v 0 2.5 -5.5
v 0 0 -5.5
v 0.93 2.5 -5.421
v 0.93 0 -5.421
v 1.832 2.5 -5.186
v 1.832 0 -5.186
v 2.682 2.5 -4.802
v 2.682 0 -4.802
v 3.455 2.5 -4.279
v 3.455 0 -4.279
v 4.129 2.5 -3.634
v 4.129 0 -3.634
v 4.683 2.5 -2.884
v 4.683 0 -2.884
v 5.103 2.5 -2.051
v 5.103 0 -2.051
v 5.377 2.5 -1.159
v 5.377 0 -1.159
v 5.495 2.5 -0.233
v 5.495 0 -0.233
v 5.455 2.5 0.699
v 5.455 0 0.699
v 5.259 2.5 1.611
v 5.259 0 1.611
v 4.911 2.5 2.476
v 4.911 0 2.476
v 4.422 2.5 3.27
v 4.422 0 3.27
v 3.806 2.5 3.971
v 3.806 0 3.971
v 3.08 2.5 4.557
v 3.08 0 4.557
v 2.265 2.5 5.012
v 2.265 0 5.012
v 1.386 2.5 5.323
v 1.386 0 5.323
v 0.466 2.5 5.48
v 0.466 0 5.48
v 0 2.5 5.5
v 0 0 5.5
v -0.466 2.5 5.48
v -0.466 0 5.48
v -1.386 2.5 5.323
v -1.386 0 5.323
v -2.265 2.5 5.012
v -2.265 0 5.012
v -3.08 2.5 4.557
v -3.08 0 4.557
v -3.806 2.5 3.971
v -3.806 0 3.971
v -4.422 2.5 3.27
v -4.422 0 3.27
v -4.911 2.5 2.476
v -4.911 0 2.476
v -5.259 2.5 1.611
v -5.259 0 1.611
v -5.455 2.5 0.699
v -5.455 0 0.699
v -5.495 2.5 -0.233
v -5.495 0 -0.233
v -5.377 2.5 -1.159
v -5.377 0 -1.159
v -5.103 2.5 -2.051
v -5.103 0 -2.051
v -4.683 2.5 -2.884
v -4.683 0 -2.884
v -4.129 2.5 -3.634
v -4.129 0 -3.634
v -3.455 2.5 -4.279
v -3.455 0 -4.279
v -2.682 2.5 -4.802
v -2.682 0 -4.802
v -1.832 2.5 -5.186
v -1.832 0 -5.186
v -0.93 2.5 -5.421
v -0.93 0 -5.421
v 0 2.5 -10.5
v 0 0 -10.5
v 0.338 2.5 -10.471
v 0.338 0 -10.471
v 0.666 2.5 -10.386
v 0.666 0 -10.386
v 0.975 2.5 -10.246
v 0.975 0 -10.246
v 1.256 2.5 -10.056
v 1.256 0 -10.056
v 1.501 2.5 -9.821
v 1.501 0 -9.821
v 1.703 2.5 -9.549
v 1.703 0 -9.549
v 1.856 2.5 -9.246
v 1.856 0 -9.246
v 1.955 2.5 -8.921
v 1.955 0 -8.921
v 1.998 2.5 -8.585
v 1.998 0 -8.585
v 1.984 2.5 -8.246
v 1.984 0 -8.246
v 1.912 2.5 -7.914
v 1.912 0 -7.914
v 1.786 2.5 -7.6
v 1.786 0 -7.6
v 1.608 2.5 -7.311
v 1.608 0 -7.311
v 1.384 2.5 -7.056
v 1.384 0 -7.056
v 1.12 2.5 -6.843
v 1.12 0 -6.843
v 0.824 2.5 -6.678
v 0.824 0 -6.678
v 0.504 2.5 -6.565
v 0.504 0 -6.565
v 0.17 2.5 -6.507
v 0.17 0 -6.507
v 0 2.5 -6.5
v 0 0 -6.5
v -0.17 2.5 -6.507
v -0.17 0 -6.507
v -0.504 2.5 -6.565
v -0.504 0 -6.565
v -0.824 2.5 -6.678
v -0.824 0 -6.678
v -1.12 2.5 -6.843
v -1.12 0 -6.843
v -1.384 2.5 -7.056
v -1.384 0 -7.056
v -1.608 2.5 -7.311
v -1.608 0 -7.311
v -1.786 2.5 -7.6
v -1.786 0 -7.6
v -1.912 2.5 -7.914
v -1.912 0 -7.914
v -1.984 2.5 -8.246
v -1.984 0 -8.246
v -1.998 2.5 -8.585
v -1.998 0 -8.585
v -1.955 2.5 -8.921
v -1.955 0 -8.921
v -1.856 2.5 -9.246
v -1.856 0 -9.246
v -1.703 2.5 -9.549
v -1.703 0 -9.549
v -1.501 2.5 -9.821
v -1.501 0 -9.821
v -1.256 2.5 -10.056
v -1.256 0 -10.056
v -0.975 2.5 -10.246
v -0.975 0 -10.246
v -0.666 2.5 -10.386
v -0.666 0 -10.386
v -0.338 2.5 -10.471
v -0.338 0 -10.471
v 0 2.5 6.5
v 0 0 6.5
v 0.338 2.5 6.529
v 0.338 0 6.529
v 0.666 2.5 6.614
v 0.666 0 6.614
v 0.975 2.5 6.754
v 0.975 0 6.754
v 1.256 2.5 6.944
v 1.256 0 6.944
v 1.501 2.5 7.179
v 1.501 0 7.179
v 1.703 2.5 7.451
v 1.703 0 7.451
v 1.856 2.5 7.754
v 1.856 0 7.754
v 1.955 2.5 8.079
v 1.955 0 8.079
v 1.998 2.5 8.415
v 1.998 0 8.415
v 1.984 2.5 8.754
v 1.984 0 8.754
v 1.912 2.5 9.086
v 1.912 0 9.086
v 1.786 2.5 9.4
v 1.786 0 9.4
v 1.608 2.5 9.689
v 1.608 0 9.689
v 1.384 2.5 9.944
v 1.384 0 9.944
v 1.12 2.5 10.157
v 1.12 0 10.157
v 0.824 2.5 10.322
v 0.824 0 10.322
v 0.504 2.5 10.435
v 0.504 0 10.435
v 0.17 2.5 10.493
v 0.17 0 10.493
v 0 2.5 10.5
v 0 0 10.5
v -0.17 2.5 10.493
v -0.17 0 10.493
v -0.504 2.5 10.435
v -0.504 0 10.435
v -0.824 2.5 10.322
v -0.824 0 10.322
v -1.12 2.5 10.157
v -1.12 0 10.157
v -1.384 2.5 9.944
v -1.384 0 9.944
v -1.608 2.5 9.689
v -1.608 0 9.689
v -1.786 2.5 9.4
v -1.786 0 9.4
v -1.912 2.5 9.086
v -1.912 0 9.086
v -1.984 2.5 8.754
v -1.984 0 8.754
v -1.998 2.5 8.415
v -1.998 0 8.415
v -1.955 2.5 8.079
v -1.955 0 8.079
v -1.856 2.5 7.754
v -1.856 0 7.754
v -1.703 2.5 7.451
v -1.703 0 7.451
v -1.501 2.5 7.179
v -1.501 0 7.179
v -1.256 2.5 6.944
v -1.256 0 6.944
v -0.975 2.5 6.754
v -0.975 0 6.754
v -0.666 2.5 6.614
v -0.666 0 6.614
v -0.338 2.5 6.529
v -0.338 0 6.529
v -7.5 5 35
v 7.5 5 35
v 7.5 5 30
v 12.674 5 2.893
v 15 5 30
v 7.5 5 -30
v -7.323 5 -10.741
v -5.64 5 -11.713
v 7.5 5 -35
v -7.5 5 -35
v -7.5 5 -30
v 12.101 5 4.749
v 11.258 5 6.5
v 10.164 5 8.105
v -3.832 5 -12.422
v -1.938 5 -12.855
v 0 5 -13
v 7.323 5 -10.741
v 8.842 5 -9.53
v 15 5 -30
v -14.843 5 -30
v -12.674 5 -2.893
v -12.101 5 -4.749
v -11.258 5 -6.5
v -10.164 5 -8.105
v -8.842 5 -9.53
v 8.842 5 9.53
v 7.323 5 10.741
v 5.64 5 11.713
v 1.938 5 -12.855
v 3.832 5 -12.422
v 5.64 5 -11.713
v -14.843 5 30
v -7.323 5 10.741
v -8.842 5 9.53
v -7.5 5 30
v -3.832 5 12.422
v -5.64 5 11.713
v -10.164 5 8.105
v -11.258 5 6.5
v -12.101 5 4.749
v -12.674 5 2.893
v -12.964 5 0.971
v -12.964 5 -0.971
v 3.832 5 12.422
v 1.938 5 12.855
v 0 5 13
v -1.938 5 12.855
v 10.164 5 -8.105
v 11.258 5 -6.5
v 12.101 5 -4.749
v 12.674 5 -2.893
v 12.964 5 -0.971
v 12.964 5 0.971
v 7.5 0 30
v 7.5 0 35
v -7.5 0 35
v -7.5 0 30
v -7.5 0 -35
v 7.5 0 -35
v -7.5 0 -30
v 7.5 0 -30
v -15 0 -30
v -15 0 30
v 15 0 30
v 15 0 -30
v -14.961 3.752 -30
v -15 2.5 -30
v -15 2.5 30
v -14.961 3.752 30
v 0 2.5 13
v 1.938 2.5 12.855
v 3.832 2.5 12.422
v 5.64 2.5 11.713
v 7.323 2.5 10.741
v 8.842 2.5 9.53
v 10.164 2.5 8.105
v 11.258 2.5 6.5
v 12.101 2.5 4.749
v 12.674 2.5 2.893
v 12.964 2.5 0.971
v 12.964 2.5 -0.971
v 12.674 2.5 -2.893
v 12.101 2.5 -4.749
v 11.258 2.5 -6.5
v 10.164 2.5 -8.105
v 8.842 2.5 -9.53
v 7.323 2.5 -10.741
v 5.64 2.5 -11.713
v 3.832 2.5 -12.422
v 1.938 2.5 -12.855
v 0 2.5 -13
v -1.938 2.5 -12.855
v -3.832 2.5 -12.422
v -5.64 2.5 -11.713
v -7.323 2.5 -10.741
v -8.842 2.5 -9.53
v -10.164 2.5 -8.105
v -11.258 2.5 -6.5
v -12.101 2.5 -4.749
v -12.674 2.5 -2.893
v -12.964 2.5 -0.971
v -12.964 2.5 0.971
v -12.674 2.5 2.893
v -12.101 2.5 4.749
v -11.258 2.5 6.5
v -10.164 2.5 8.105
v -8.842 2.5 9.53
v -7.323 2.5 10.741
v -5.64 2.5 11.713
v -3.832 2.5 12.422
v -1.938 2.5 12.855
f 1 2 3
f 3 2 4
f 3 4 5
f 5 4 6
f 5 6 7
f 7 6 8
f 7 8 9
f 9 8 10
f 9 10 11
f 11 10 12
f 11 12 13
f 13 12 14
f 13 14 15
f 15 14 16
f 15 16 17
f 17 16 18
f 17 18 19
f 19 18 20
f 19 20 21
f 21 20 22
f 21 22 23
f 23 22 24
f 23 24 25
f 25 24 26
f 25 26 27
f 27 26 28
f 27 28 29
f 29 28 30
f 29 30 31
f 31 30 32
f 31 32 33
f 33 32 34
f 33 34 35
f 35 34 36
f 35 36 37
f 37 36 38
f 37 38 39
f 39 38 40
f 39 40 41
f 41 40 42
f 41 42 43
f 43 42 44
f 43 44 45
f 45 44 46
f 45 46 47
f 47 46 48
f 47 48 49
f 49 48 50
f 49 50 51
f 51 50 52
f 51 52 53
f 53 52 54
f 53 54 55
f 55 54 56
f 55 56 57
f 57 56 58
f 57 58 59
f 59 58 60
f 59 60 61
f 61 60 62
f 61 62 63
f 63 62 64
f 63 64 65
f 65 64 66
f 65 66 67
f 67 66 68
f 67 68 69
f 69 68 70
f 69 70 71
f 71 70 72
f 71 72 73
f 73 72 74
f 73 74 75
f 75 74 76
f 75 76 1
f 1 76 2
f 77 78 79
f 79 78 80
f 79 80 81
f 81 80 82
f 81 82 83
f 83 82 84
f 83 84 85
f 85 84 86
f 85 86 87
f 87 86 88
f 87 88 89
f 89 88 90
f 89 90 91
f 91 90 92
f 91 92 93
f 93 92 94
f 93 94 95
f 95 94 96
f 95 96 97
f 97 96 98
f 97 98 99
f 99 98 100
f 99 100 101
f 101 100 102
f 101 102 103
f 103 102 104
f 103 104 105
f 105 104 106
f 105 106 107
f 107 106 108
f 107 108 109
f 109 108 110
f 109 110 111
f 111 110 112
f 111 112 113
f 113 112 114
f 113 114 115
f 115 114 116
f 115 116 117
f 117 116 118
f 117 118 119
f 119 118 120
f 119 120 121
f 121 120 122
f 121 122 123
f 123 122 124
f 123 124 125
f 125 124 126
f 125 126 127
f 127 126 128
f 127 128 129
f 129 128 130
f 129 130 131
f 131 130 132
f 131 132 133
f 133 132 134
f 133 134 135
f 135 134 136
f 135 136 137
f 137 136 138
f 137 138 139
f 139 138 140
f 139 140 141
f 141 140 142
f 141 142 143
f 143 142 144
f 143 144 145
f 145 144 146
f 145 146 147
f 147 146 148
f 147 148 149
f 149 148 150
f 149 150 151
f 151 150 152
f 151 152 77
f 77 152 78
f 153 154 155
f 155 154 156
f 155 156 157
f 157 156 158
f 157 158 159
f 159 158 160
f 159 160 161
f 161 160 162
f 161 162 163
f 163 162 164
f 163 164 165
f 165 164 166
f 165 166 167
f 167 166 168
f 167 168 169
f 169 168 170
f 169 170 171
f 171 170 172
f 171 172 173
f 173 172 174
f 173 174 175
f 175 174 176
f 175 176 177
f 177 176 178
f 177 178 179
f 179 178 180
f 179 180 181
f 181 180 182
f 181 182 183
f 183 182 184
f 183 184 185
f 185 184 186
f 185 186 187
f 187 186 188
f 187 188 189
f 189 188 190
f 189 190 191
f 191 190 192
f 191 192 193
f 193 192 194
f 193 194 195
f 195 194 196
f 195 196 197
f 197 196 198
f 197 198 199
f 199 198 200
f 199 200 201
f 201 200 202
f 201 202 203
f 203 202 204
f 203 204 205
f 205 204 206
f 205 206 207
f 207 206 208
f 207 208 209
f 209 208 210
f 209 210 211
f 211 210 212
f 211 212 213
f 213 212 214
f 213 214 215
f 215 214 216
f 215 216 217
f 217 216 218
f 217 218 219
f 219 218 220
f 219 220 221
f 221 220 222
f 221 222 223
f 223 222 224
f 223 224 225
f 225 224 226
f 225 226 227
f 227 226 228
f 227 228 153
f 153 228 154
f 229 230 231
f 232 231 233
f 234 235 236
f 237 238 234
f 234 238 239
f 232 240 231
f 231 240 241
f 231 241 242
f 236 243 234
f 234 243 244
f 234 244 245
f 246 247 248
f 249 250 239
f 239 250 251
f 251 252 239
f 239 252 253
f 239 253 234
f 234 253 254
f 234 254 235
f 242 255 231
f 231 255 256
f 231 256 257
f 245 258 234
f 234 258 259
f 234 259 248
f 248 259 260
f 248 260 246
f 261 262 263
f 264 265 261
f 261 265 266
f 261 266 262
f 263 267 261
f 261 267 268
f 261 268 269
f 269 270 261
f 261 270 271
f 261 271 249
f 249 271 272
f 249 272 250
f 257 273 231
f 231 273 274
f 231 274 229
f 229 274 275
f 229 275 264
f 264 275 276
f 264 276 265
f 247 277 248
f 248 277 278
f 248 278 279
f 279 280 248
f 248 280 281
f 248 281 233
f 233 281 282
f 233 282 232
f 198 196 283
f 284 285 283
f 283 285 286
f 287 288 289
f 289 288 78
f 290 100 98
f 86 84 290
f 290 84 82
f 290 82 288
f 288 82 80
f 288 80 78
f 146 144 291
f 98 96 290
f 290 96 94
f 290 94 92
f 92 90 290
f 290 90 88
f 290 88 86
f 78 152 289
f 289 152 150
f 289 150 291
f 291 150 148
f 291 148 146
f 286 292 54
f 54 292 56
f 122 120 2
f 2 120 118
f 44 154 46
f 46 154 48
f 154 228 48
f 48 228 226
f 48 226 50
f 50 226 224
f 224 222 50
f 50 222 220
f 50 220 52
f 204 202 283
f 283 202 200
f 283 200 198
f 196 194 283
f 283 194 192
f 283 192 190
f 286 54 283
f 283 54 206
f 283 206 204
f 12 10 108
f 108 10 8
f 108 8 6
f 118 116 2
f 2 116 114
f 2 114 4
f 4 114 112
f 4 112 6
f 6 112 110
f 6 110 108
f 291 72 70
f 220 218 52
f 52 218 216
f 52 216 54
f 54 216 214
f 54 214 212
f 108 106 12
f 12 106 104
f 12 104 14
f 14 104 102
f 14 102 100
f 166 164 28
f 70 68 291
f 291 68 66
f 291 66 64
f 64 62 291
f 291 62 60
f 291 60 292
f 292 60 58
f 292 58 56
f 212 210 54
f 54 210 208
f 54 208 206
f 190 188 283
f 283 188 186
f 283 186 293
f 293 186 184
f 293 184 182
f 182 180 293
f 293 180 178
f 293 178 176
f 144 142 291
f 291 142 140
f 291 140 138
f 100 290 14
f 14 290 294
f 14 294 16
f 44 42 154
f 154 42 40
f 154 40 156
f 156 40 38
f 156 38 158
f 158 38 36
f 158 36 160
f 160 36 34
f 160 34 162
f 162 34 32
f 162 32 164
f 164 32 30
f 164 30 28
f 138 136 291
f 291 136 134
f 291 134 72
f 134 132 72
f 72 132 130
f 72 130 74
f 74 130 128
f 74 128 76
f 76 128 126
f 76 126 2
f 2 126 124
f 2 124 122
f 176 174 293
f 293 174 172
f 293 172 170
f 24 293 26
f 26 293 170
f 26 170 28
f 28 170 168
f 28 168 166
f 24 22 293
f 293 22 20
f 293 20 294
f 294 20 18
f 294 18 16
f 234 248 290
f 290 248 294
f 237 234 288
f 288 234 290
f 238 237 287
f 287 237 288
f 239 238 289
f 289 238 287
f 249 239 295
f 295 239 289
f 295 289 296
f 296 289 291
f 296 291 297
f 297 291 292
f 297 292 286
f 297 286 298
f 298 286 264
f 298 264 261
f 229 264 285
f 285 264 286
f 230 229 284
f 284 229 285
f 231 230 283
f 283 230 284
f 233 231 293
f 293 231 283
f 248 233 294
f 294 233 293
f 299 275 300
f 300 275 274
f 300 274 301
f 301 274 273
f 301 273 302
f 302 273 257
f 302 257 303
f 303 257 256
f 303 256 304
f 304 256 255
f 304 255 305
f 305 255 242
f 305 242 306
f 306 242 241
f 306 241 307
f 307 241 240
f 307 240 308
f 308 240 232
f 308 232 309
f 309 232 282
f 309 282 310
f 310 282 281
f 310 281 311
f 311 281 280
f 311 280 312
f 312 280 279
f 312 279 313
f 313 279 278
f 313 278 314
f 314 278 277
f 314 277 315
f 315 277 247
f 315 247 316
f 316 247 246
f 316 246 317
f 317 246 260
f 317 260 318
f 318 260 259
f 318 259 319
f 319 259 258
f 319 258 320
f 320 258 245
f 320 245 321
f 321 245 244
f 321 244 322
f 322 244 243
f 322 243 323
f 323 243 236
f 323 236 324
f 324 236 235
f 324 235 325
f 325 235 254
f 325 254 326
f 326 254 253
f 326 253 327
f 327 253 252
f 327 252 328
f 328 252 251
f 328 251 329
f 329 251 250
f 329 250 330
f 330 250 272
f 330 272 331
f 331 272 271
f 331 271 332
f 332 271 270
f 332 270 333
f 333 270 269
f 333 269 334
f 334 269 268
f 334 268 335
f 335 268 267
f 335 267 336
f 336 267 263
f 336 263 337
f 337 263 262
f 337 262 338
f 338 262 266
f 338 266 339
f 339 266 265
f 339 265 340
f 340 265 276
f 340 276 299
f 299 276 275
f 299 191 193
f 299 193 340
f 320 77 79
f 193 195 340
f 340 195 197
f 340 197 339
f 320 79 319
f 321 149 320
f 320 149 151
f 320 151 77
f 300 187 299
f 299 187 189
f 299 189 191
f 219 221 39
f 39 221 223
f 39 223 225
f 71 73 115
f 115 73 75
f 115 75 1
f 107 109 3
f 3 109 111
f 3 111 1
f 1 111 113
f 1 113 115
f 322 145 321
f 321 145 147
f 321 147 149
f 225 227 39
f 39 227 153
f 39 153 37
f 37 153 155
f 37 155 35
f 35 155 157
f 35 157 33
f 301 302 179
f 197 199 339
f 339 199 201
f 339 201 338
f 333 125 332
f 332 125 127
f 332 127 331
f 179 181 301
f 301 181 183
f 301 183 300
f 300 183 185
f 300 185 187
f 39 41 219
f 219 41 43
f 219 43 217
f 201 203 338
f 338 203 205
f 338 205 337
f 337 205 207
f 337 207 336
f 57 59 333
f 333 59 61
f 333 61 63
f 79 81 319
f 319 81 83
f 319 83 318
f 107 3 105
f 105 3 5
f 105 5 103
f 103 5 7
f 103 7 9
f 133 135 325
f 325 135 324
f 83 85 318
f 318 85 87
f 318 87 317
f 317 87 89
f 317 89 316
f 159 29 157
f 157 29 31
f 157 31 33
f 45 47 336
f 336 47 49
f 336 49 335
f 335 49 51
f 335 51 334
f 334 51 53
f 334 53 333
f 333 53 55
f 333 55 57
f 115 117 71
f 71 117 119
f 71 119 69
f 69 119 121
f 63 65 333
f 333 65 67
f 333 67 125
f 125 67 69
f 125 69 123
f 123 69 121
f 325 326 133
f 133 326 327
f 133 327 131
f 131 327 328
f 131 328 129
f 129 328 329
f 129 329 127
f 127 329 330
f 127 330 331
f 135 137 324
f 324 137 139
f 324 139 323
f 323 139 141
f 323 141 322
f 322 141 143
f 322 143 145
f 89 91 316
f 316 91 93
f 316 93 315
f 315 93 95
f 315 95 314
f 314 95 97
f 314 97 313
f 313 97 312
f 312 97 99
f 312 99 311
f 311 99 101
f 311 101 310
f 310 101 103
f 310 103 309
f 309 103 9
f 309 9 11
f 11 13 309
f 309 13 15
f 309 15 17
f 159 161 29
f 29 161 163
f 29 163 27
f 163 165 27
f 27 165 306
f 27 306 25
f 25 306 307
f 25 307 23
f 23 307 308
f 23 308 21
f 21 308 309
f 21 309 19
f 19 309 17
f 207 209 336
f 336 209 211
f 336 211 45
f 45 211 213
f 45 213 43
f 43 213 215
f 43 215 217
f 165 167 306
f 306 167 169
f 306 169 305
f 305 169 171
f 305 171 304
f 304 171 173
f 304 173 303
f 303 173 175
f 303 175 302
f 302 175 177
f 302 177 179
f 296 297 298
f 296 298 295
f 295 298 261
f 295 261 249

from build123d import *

# Parameters (mm, degrees)
SKETCH1_R           = 5.5
SKETCH1_R_2         = 2
BOSS_EXTRUDE1_DEPTH = 5
SKETCH2_R           = 13
CUT_EXTRUDE1_DEPTH  = 2.5
CUT_EXTRUDE2_DEPTH  = 60


with BuildPart() as part:
    # Sketch1 → Boss-Extrude1 (new body)
    with BuildSketch(Plane(origin=(0, 0, 0), x_dir=(1, 0, 0), z_dir=(0, 1, 0))):
        Polygon((7.5, -30), (15, -30), (15, 30), (7.5, 30), (7.5, 35), (-7.5, 35), (-7.5, 30), (-15, 30), (-15, -30), (-7.5, -30), (-7.5, -35), (7.5, -35), align=None)
        with Locations(Location((0, 0, 0), (0, 0, 270))):
            Circle(SKETCH1_R, mode=Mode.SUBTRACT)
        with Locations(Location((0, 8.5, 0), (0, 0, 270))):
            Circle(SKETCH1_R_2, mode=Mode.SUBTRACT)
        with Locations(Location((0, -8.5, 0), (0, 0, 270))):
            Circle(SKETCH1_R_2, mode=Mode.SUBTRACT)
    extrude(amount=BOSS_EXTRUDE1_DEPTH)

    # Sketch2 → Cut-Extrude1 (cut)
    with BuildSketch(Plane(origin=(0, 5, 0), x_dir=(1, 0, 0), z_dir=(0, 1, 0))):
        with Locations(Location((0, 0, 0), (0, 0, 270))):
            Circle(SKETCH2_R)
    extrude(amount=-CUT_EXTRUDE1_DEPTH, mode=Mode.SUBTRACT)

    # Sketch3 → Cut-Extrude2 (cut)
    with BuildSketch(Plane.XY.offset(30)):
        with BuildLine():
            Line((-15, 5), (-15, 2.5))
            ThreePointArc((-15, 2.5), (-14.960745185, 3.752458251), (-14.843134833, 5))
            Line((-14.843134833, 5), (-15, 5))
        make_face()
    extrude(amount=-CUT_EXTRUDE2_DEPTH, mode=Mode.SUBTRACT)


solid = part.part
